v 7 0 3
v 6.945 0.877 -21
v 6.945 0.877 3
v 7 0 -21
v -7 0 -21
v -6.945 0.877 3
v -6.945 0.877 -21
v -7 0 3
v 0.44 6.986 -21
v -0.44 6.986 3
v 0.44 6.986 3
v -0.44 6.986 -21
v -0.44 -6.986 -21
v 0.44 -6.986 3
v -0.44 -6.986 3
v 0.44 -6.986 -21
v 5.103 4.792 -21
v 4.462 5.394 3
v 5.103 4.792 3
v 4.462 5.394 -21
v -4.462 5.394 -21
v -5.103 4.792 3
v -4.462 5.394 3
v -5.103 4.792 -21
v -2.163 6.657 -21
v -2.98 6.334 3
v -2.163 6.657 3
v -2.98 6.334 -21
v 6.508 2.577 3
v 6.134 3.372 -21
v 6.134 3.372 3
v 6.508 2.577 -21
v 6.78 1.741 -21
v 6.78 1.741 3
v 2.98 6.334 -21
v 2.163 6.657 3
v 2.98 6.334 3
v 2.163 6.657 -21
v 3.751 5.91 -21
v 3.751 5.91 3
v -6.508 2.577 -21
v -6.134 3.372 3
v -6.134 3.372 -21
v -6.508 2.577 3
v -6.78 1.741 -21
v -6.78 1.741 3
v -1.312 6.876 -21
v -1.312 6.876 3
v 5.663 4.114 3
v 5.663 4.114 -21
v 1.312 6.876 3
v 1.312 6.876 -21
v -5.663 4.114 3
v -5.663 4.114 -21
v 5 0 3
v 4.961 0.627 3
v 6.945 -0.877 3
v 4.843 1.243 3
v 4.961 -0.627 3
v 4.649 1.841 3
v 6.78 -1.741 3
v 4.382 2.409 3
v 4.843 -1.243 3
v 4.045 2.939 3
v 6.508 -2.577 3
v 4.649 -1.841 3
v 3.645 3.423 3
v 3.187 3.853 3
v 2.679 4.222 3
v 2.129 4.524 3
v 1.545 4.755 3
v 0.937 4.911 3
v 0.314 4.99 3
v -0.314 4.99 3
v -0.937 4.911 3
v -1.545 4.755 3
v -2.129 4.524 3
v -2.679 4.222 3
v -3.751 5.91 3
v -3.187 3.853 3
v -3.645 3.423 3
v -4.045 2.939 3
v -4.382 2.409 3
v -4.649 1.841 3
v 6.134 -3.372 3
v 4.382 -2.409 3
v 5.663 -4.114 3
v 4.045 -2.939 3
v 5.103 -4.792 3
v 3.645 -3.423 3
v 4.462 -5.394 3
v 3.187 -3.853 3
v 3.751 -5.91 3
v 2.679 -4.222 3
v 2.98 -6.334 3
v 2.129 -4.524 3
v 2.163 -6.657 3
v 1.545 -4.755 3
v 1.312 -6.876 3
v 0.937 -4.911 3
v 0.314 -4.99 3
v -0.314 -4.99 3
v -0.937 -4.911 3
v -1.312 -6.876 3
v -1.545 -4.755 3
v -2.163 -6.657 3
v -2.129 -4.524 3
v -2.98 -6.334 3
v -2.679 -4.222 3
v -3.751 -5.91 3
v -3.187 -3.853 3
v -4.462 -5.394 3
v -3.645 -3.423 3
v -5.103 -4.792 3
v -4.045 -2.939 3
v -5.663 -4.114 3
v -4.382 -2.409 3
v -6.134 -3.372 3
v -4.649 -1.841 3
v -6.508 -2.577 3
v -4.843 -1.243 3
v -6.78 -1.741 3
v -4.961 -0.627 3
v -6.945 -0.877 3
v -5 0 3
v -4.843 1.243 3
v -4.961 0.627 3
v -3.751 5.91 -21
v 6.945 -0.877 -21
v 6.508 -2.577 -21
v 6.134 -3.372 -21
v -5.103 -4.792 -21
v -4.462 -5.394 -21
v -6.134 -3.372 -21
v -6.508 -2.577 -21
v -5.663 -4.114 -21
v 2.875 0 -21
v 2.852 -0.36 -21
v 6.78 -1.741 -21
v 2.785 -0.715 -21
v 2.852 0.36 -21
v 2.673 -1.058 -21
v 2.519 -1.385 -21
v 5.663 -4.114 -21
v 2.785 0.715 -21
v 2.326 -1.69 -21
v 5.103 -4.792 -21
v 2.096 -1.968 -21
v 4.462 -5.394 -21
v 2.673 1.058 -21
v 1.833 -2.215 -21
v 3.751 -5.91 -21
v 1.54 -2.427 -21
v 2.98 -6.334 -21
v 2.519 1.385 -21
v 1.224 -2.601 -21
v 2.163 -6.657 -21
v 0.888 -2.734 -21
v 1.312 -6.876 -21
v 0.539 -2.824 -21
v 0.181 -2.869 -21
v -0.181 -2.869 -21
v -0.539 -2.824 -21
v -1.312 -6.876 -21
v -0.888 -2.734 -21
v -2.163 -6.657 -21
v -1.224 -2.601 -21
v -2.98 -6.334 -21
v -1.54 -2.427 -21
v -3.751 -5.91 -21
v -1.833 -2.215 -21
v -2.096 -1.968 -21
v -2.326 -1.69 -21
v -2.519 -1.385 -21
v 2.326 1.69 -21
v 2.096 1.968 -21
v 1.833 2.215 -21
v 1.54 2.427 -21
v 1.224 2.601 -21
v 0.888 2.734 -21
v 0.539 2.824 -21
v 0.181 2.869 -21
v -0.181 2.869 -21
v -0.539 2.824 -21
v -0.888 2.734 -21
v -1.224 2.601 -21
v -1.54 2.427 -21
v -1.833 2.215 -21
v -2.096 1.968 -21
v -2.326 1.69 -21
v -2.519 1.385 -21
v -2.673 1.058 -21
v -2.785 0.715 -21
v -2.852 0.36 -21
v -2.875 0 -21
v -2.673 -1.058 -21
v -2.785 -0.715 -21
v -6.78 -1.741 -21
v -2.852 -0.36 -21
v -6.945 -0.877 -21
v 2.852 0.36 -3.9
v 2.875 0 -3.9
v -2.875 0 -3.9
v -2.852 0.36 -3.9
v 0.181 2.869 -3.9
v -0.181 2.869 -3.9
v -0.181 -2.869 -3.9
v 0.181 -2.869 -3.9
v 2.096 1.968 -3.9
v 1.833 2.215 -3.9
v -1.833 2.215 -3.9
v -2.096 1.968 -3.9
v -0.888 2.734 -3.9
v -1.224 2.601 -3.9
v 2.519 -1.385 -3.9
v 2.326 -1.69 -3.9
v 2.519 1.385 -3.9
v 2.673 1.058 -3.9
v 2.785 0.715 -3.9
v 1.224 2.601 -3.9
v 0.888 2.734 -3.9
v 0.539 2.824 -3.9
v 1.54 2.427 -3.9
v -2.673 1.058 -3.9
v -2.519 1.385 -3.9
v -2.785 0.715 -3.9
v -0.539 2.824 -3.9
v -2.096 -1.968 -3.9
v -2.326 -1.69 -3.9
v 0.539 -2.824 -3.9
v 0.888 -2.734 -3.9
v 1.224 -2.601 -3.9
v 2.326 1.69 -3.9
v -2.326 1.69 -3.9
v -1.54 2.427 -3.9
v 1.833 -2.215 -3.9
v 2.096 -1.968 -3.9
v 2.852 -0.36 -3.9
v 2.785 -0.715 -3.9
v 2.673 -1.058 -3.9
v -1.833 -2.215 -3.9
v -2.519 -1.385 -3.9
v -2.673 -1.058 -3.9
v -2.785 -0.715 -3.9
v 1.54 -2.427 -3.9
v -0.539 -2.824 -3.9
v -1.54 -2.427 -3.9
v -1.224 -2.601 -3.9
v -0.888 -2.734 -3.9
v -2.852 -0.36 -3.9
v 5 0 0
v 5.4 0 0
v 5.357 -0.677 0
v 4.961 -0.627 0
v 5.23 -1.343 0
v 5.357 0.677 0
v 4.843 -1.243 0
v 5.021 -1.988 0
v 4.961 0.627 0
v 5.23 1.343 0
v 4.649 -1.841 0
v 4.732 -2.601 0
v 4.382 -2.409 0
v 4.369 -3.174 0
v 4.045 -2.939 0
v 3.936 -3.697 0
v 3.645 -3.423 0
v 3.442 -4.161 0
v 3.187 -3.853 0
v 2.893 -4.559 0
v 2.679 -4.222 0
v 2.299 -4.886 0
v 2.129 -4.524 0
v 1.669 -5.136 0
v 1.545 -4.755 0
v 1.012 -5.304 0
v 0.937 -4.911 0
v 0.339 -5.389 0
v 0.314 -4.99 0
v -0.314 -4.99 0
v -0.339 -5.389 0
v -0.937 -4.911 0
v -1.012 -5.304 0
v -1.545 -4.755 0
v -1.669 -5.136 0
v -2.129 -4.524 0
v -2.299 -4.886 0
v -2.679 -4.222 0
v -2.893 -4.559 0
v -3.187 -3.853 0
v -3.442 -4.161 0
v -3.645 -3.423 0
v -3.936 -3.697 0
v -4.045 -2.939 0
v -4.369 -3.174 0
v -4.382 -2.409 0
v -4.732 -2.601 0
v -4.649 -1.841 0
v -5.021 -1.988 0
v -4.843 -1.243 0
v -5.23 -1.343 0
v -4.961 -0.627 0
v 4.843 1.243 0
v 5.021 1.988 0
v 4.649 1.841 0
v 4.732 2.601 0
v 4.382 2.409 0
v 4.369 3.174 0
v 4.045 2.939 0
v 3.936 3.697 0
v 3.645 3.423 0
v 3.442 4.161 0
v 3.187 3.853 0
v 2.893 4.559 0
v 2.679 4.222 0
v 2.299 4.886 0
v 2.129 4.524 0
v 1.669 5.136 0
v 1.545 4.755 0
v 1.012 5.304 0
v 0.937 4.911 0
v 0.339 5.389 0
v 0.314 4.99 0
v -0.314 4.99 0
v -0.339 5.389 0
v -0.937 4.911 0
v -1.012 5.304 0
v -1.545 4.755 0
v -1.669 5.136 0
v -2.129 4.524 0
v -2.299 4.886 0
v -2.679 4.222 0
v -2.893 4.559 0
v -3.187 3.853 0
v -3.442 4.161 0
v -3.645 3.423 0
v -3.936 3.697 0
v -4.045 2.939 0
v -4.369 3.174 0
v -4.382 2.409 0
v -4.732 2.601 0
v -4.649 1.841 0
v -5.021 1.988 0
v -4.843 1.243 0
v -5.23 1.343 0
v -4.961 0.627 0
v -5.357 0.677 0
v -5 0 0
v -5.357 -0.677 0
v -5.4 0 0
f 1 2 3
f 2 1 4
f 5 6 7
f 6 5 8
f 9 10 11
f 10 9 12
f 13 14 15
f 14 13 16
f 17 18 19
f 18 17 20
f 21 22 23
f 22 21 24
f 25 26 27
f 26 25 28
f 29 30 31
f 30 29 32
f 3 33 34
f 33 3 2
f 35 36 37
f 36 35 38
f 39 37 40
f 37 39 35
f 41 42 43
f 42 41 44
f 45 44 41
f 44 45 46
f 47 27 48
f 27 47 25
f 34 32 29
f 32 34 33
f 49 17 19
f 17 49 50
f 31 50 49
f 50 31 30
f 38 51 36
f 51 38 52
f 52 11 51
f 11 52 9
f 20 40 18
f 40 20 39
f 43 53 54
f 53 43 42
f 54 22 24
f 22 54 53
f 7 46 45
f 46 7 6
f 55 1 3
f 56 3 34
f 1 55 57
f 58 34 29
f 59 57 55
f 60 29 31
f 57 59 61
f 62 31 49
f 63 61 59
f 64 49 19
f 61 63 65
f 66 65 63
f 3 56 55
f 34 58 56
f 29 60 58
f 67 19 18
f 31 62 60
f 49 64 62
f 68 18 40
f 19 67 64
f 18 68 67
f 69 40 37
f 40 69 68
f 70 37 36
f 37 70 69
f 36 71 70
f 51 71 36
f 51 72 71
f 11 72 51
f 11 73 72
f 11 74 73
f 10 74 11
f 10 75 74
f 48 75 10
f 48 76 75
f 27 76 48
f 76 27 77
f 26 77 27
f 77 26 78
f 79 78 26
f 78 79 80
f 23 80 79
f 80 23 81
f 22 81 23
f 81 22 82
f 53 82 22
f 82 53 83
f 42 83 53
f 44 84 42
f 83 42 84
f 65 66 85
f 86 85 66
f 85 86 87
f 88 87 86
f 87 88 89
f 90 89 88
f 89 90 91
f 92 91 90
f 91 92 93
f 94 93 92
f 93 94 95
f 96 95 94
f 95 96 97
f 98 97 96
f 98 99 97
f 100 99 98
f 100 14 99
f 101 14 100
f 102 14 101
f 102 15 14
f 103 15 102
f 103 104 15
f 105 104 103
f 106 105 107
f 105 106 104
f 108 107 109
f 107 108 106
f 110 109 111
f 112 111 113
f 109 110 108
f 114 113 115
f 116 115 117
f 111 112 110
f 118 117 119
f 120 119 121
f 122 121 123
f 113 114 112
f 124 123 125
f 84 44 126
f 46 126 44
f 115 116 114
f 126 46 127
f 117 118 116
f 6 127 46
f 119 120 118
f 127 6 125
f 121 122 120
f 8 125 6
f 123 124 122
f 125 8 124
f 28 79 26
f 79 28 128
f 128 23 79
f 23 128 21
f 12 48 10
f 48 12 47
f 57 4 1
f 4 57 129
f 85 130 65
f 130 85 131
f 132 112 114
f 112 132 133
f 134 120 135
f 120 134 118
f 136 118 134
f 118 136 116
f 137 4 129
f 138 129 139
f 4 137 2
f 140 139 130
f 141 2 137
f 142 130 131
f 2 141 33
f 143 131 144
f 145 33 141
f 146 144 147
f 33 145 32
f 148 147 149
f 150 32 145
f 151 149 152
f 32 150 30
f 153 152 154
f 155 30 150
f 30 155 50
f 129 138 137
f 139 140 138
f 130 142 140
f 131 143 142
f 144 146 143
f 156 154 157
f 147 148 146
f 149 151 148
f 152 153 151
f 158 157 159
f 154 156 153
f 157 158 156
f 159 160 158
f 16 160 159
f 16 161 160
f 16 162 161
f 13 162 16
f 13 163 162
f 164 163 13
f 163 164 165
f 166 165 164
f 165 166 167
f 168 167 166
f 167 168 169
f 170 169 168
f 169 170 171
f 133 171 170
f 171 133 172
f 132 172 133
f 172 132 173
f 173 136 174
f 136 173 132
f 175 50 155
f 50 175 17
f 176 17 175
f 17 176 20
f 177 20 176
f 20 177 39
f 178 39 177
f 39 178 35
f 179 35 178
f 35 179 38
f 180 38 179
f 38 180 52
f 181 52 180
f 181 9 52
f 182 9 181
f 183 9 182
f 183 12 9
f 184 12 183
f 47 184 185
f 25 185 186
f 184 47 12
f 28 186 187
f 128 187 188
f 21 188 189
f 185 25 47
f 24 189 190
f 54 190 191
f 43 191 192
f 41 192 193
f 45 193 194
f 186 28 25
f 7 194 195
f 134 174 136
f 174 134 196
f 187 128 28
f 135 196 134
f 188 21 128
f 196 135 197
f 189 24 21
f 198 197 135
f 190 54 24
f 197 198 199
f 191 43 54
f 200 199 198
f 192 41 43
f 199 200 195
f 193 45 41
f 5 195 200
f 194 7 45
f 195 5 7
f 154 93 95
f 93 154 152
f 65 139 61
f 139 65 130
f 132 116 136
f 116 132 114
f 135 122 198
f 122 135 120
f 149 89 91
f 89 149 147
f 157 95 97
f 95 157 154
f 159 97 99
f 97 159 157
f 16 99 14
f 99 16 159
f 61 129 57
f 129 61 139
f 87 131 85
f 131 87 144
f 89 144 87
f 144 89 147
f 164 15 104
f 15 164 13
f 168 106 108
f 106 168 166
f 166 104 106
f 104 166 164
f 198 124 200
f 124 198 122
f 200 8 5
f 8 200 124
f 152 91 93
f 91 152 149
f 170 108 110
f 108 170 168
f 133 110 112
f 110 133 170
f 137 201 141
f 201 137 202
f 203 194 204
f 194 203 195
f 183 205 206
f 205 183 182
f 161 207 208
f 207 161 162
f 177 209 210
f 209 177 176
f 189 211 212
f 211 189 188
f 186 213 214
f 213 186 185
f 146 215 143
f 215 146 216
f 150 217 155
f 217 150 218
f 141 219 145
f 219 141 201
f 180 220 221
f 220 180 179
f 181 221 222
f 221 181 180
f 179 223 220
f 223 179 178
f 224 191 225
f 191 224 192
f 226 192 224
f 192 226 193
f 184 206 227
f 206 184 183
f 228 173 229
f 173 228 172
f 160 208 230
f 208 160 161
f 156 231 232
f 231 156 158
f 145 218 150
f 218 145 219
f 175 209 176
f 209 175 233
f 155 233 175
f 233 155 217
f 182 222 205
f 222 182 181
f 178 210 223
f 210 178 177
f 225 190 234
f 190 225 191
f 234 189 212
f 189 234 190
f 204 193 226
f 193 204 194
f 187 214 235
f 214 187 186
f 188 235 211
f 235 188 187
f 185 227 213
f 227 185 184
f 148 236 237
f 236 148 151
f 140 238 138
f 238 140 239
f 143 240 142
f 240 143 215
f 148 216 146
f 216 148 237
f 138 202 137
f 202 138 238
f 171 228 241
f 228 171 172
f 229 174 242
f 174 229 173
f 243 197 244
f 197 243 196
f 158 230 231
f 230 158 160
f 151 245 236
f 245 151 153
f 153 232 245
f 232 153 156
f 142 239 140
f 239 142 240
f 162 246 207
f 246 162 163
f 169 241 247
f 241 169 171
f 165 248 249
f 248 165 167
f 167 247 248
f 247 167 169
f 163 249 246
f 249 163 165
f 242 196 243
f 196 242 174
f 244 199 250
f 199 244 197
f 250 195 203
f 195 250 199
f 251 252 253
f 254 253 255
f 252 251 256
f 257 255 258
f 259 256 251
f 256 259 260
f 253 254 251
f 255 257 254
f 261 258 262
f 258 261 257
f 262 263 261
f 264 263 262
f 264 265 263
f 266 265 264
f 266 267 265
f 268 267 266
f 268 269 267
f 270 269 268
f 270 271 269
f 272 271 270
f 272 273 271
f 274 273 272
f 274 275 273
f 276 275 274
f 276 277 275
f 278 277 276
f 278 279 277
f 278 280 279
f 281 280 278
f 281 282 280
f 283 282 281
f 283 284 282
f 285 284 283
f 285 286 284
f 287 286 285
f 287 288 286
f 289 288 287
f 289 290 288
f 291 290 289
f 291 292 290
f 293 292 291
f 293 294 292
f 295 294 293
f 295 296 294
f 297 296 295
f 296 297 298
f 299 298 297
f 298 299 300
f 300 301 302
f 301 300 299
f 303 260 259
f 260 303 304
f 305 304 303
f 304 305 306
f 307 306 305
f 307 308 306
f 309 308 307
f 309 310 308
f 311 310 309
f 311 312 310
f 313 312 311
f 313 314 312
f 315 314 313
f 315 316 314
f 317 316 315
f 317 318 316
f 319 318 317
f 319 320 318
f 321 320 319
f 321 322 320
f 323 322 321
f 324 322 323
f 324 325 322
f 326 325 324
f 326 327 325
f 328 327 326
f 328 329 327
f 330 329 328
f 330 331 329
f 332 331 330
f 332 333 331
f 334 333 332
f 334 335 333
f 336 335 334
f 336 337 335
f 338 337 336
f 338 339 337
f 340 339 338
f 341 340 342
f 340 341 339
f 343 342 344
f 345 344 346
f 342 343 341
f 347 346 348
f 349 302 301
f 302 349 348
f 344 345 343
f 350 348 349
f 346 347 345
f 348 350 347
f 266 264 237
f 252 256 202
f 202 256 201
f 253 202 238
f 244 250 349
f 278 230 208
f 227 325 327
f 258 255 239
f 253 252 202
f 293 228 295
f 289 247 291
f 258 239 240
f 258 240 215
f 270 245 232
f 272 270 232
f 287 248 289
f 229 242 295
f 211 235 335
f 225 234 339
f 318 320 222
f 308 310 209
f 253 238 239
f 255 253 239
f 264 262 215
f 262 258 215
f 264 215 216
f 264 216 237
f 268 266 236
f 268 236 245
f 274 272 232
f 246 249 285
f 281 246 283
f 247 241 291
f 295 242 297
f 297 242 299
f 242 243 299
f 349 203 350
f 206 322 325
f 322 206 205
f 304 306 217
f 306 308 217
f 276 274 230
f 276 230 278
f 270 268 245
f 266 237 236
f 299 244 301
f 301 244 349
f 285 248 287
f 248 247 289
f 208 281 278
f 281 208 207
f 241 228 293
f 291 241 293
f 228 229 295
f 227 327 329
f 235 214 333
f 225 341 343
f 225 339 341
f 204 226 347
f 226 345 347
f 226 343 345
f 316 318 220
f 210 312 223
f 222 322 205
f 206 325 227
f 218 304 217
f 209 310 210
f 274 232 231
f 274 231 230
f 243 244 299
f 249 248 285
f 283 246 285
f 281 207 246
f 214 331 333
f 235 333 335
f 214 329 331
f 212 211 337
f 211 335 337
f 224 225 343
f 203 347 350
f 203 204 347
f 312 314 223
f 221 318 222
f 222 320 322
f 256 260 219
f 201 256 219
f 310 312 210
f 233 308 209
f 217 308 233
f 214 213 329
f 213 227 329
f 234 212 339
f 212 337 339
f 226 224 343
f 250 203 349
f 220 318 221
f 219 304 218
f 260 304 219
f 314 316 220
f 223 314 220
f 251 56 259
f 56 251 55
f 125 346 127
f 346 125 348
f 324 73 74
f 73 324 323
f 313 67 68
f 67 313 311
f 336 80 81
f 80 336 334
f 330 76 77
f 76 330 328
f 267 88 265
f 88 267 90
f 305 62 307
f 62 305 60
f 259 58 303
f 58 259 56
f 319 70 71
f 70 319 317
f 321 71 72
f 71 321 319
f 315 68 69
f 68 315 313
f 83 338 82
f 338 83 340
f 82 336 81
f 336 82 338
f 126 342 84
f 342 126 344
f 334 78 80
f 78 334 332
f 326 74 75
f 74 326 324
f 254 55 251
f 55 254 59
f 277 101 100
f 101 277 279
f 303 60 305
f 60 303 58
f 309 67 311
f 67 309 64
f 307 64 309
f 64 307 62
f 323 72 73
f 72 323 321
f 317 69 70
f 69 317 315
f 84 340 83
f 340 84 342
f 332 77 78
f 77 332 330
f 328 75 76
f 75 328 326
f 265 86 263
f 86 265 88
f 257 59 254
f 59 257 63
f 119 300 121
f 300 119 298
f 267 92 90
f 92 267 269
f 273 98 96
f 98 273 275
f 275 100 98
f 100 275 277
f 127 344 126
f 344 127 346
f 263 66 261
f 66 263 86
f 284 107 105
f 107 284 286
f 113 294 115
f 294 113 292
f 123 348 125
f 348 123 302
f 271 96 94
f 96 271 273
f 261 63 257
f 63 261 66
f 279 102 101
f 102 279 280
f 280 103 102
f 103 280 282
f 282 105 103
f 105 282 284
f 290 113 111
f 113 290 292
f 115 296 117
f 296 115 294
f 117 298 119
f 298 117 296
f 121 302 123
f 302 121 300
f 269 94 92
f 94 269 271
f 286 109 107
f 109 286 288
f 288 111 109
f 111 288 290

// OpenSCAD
$fn = 50;

difference() {
	union() {
		translate(v = [0, 0, -21.0]) {
			cylinder(h = 24, r = 7.0);
		}
	}
	union() {
		translate(v = [0, 0, 0]) {
			rotate(a = [0, 0, 0]) {
				difference() {
					union() {
						translate(v = [0, 0, -24.0]) {
							cylinder(h = 24, r = 2.6);
						}
						translate(v = [0, 0, -3.9]) {
							cylinder(h = 3.9, r1 = 2.875, r2 = 5.4);
						}
						translate(v = [0, 0, -24.0]) {
							cylinder(h = 24, r = 2.875);
						}
						translate(v = [0, 0, -24.0]) {
							cylinder(h = 24, r = 2.6);
						}
					}
					union();
				}
			}
		}
		#cylinder(h = 3, r = 5.0);
	}
}
